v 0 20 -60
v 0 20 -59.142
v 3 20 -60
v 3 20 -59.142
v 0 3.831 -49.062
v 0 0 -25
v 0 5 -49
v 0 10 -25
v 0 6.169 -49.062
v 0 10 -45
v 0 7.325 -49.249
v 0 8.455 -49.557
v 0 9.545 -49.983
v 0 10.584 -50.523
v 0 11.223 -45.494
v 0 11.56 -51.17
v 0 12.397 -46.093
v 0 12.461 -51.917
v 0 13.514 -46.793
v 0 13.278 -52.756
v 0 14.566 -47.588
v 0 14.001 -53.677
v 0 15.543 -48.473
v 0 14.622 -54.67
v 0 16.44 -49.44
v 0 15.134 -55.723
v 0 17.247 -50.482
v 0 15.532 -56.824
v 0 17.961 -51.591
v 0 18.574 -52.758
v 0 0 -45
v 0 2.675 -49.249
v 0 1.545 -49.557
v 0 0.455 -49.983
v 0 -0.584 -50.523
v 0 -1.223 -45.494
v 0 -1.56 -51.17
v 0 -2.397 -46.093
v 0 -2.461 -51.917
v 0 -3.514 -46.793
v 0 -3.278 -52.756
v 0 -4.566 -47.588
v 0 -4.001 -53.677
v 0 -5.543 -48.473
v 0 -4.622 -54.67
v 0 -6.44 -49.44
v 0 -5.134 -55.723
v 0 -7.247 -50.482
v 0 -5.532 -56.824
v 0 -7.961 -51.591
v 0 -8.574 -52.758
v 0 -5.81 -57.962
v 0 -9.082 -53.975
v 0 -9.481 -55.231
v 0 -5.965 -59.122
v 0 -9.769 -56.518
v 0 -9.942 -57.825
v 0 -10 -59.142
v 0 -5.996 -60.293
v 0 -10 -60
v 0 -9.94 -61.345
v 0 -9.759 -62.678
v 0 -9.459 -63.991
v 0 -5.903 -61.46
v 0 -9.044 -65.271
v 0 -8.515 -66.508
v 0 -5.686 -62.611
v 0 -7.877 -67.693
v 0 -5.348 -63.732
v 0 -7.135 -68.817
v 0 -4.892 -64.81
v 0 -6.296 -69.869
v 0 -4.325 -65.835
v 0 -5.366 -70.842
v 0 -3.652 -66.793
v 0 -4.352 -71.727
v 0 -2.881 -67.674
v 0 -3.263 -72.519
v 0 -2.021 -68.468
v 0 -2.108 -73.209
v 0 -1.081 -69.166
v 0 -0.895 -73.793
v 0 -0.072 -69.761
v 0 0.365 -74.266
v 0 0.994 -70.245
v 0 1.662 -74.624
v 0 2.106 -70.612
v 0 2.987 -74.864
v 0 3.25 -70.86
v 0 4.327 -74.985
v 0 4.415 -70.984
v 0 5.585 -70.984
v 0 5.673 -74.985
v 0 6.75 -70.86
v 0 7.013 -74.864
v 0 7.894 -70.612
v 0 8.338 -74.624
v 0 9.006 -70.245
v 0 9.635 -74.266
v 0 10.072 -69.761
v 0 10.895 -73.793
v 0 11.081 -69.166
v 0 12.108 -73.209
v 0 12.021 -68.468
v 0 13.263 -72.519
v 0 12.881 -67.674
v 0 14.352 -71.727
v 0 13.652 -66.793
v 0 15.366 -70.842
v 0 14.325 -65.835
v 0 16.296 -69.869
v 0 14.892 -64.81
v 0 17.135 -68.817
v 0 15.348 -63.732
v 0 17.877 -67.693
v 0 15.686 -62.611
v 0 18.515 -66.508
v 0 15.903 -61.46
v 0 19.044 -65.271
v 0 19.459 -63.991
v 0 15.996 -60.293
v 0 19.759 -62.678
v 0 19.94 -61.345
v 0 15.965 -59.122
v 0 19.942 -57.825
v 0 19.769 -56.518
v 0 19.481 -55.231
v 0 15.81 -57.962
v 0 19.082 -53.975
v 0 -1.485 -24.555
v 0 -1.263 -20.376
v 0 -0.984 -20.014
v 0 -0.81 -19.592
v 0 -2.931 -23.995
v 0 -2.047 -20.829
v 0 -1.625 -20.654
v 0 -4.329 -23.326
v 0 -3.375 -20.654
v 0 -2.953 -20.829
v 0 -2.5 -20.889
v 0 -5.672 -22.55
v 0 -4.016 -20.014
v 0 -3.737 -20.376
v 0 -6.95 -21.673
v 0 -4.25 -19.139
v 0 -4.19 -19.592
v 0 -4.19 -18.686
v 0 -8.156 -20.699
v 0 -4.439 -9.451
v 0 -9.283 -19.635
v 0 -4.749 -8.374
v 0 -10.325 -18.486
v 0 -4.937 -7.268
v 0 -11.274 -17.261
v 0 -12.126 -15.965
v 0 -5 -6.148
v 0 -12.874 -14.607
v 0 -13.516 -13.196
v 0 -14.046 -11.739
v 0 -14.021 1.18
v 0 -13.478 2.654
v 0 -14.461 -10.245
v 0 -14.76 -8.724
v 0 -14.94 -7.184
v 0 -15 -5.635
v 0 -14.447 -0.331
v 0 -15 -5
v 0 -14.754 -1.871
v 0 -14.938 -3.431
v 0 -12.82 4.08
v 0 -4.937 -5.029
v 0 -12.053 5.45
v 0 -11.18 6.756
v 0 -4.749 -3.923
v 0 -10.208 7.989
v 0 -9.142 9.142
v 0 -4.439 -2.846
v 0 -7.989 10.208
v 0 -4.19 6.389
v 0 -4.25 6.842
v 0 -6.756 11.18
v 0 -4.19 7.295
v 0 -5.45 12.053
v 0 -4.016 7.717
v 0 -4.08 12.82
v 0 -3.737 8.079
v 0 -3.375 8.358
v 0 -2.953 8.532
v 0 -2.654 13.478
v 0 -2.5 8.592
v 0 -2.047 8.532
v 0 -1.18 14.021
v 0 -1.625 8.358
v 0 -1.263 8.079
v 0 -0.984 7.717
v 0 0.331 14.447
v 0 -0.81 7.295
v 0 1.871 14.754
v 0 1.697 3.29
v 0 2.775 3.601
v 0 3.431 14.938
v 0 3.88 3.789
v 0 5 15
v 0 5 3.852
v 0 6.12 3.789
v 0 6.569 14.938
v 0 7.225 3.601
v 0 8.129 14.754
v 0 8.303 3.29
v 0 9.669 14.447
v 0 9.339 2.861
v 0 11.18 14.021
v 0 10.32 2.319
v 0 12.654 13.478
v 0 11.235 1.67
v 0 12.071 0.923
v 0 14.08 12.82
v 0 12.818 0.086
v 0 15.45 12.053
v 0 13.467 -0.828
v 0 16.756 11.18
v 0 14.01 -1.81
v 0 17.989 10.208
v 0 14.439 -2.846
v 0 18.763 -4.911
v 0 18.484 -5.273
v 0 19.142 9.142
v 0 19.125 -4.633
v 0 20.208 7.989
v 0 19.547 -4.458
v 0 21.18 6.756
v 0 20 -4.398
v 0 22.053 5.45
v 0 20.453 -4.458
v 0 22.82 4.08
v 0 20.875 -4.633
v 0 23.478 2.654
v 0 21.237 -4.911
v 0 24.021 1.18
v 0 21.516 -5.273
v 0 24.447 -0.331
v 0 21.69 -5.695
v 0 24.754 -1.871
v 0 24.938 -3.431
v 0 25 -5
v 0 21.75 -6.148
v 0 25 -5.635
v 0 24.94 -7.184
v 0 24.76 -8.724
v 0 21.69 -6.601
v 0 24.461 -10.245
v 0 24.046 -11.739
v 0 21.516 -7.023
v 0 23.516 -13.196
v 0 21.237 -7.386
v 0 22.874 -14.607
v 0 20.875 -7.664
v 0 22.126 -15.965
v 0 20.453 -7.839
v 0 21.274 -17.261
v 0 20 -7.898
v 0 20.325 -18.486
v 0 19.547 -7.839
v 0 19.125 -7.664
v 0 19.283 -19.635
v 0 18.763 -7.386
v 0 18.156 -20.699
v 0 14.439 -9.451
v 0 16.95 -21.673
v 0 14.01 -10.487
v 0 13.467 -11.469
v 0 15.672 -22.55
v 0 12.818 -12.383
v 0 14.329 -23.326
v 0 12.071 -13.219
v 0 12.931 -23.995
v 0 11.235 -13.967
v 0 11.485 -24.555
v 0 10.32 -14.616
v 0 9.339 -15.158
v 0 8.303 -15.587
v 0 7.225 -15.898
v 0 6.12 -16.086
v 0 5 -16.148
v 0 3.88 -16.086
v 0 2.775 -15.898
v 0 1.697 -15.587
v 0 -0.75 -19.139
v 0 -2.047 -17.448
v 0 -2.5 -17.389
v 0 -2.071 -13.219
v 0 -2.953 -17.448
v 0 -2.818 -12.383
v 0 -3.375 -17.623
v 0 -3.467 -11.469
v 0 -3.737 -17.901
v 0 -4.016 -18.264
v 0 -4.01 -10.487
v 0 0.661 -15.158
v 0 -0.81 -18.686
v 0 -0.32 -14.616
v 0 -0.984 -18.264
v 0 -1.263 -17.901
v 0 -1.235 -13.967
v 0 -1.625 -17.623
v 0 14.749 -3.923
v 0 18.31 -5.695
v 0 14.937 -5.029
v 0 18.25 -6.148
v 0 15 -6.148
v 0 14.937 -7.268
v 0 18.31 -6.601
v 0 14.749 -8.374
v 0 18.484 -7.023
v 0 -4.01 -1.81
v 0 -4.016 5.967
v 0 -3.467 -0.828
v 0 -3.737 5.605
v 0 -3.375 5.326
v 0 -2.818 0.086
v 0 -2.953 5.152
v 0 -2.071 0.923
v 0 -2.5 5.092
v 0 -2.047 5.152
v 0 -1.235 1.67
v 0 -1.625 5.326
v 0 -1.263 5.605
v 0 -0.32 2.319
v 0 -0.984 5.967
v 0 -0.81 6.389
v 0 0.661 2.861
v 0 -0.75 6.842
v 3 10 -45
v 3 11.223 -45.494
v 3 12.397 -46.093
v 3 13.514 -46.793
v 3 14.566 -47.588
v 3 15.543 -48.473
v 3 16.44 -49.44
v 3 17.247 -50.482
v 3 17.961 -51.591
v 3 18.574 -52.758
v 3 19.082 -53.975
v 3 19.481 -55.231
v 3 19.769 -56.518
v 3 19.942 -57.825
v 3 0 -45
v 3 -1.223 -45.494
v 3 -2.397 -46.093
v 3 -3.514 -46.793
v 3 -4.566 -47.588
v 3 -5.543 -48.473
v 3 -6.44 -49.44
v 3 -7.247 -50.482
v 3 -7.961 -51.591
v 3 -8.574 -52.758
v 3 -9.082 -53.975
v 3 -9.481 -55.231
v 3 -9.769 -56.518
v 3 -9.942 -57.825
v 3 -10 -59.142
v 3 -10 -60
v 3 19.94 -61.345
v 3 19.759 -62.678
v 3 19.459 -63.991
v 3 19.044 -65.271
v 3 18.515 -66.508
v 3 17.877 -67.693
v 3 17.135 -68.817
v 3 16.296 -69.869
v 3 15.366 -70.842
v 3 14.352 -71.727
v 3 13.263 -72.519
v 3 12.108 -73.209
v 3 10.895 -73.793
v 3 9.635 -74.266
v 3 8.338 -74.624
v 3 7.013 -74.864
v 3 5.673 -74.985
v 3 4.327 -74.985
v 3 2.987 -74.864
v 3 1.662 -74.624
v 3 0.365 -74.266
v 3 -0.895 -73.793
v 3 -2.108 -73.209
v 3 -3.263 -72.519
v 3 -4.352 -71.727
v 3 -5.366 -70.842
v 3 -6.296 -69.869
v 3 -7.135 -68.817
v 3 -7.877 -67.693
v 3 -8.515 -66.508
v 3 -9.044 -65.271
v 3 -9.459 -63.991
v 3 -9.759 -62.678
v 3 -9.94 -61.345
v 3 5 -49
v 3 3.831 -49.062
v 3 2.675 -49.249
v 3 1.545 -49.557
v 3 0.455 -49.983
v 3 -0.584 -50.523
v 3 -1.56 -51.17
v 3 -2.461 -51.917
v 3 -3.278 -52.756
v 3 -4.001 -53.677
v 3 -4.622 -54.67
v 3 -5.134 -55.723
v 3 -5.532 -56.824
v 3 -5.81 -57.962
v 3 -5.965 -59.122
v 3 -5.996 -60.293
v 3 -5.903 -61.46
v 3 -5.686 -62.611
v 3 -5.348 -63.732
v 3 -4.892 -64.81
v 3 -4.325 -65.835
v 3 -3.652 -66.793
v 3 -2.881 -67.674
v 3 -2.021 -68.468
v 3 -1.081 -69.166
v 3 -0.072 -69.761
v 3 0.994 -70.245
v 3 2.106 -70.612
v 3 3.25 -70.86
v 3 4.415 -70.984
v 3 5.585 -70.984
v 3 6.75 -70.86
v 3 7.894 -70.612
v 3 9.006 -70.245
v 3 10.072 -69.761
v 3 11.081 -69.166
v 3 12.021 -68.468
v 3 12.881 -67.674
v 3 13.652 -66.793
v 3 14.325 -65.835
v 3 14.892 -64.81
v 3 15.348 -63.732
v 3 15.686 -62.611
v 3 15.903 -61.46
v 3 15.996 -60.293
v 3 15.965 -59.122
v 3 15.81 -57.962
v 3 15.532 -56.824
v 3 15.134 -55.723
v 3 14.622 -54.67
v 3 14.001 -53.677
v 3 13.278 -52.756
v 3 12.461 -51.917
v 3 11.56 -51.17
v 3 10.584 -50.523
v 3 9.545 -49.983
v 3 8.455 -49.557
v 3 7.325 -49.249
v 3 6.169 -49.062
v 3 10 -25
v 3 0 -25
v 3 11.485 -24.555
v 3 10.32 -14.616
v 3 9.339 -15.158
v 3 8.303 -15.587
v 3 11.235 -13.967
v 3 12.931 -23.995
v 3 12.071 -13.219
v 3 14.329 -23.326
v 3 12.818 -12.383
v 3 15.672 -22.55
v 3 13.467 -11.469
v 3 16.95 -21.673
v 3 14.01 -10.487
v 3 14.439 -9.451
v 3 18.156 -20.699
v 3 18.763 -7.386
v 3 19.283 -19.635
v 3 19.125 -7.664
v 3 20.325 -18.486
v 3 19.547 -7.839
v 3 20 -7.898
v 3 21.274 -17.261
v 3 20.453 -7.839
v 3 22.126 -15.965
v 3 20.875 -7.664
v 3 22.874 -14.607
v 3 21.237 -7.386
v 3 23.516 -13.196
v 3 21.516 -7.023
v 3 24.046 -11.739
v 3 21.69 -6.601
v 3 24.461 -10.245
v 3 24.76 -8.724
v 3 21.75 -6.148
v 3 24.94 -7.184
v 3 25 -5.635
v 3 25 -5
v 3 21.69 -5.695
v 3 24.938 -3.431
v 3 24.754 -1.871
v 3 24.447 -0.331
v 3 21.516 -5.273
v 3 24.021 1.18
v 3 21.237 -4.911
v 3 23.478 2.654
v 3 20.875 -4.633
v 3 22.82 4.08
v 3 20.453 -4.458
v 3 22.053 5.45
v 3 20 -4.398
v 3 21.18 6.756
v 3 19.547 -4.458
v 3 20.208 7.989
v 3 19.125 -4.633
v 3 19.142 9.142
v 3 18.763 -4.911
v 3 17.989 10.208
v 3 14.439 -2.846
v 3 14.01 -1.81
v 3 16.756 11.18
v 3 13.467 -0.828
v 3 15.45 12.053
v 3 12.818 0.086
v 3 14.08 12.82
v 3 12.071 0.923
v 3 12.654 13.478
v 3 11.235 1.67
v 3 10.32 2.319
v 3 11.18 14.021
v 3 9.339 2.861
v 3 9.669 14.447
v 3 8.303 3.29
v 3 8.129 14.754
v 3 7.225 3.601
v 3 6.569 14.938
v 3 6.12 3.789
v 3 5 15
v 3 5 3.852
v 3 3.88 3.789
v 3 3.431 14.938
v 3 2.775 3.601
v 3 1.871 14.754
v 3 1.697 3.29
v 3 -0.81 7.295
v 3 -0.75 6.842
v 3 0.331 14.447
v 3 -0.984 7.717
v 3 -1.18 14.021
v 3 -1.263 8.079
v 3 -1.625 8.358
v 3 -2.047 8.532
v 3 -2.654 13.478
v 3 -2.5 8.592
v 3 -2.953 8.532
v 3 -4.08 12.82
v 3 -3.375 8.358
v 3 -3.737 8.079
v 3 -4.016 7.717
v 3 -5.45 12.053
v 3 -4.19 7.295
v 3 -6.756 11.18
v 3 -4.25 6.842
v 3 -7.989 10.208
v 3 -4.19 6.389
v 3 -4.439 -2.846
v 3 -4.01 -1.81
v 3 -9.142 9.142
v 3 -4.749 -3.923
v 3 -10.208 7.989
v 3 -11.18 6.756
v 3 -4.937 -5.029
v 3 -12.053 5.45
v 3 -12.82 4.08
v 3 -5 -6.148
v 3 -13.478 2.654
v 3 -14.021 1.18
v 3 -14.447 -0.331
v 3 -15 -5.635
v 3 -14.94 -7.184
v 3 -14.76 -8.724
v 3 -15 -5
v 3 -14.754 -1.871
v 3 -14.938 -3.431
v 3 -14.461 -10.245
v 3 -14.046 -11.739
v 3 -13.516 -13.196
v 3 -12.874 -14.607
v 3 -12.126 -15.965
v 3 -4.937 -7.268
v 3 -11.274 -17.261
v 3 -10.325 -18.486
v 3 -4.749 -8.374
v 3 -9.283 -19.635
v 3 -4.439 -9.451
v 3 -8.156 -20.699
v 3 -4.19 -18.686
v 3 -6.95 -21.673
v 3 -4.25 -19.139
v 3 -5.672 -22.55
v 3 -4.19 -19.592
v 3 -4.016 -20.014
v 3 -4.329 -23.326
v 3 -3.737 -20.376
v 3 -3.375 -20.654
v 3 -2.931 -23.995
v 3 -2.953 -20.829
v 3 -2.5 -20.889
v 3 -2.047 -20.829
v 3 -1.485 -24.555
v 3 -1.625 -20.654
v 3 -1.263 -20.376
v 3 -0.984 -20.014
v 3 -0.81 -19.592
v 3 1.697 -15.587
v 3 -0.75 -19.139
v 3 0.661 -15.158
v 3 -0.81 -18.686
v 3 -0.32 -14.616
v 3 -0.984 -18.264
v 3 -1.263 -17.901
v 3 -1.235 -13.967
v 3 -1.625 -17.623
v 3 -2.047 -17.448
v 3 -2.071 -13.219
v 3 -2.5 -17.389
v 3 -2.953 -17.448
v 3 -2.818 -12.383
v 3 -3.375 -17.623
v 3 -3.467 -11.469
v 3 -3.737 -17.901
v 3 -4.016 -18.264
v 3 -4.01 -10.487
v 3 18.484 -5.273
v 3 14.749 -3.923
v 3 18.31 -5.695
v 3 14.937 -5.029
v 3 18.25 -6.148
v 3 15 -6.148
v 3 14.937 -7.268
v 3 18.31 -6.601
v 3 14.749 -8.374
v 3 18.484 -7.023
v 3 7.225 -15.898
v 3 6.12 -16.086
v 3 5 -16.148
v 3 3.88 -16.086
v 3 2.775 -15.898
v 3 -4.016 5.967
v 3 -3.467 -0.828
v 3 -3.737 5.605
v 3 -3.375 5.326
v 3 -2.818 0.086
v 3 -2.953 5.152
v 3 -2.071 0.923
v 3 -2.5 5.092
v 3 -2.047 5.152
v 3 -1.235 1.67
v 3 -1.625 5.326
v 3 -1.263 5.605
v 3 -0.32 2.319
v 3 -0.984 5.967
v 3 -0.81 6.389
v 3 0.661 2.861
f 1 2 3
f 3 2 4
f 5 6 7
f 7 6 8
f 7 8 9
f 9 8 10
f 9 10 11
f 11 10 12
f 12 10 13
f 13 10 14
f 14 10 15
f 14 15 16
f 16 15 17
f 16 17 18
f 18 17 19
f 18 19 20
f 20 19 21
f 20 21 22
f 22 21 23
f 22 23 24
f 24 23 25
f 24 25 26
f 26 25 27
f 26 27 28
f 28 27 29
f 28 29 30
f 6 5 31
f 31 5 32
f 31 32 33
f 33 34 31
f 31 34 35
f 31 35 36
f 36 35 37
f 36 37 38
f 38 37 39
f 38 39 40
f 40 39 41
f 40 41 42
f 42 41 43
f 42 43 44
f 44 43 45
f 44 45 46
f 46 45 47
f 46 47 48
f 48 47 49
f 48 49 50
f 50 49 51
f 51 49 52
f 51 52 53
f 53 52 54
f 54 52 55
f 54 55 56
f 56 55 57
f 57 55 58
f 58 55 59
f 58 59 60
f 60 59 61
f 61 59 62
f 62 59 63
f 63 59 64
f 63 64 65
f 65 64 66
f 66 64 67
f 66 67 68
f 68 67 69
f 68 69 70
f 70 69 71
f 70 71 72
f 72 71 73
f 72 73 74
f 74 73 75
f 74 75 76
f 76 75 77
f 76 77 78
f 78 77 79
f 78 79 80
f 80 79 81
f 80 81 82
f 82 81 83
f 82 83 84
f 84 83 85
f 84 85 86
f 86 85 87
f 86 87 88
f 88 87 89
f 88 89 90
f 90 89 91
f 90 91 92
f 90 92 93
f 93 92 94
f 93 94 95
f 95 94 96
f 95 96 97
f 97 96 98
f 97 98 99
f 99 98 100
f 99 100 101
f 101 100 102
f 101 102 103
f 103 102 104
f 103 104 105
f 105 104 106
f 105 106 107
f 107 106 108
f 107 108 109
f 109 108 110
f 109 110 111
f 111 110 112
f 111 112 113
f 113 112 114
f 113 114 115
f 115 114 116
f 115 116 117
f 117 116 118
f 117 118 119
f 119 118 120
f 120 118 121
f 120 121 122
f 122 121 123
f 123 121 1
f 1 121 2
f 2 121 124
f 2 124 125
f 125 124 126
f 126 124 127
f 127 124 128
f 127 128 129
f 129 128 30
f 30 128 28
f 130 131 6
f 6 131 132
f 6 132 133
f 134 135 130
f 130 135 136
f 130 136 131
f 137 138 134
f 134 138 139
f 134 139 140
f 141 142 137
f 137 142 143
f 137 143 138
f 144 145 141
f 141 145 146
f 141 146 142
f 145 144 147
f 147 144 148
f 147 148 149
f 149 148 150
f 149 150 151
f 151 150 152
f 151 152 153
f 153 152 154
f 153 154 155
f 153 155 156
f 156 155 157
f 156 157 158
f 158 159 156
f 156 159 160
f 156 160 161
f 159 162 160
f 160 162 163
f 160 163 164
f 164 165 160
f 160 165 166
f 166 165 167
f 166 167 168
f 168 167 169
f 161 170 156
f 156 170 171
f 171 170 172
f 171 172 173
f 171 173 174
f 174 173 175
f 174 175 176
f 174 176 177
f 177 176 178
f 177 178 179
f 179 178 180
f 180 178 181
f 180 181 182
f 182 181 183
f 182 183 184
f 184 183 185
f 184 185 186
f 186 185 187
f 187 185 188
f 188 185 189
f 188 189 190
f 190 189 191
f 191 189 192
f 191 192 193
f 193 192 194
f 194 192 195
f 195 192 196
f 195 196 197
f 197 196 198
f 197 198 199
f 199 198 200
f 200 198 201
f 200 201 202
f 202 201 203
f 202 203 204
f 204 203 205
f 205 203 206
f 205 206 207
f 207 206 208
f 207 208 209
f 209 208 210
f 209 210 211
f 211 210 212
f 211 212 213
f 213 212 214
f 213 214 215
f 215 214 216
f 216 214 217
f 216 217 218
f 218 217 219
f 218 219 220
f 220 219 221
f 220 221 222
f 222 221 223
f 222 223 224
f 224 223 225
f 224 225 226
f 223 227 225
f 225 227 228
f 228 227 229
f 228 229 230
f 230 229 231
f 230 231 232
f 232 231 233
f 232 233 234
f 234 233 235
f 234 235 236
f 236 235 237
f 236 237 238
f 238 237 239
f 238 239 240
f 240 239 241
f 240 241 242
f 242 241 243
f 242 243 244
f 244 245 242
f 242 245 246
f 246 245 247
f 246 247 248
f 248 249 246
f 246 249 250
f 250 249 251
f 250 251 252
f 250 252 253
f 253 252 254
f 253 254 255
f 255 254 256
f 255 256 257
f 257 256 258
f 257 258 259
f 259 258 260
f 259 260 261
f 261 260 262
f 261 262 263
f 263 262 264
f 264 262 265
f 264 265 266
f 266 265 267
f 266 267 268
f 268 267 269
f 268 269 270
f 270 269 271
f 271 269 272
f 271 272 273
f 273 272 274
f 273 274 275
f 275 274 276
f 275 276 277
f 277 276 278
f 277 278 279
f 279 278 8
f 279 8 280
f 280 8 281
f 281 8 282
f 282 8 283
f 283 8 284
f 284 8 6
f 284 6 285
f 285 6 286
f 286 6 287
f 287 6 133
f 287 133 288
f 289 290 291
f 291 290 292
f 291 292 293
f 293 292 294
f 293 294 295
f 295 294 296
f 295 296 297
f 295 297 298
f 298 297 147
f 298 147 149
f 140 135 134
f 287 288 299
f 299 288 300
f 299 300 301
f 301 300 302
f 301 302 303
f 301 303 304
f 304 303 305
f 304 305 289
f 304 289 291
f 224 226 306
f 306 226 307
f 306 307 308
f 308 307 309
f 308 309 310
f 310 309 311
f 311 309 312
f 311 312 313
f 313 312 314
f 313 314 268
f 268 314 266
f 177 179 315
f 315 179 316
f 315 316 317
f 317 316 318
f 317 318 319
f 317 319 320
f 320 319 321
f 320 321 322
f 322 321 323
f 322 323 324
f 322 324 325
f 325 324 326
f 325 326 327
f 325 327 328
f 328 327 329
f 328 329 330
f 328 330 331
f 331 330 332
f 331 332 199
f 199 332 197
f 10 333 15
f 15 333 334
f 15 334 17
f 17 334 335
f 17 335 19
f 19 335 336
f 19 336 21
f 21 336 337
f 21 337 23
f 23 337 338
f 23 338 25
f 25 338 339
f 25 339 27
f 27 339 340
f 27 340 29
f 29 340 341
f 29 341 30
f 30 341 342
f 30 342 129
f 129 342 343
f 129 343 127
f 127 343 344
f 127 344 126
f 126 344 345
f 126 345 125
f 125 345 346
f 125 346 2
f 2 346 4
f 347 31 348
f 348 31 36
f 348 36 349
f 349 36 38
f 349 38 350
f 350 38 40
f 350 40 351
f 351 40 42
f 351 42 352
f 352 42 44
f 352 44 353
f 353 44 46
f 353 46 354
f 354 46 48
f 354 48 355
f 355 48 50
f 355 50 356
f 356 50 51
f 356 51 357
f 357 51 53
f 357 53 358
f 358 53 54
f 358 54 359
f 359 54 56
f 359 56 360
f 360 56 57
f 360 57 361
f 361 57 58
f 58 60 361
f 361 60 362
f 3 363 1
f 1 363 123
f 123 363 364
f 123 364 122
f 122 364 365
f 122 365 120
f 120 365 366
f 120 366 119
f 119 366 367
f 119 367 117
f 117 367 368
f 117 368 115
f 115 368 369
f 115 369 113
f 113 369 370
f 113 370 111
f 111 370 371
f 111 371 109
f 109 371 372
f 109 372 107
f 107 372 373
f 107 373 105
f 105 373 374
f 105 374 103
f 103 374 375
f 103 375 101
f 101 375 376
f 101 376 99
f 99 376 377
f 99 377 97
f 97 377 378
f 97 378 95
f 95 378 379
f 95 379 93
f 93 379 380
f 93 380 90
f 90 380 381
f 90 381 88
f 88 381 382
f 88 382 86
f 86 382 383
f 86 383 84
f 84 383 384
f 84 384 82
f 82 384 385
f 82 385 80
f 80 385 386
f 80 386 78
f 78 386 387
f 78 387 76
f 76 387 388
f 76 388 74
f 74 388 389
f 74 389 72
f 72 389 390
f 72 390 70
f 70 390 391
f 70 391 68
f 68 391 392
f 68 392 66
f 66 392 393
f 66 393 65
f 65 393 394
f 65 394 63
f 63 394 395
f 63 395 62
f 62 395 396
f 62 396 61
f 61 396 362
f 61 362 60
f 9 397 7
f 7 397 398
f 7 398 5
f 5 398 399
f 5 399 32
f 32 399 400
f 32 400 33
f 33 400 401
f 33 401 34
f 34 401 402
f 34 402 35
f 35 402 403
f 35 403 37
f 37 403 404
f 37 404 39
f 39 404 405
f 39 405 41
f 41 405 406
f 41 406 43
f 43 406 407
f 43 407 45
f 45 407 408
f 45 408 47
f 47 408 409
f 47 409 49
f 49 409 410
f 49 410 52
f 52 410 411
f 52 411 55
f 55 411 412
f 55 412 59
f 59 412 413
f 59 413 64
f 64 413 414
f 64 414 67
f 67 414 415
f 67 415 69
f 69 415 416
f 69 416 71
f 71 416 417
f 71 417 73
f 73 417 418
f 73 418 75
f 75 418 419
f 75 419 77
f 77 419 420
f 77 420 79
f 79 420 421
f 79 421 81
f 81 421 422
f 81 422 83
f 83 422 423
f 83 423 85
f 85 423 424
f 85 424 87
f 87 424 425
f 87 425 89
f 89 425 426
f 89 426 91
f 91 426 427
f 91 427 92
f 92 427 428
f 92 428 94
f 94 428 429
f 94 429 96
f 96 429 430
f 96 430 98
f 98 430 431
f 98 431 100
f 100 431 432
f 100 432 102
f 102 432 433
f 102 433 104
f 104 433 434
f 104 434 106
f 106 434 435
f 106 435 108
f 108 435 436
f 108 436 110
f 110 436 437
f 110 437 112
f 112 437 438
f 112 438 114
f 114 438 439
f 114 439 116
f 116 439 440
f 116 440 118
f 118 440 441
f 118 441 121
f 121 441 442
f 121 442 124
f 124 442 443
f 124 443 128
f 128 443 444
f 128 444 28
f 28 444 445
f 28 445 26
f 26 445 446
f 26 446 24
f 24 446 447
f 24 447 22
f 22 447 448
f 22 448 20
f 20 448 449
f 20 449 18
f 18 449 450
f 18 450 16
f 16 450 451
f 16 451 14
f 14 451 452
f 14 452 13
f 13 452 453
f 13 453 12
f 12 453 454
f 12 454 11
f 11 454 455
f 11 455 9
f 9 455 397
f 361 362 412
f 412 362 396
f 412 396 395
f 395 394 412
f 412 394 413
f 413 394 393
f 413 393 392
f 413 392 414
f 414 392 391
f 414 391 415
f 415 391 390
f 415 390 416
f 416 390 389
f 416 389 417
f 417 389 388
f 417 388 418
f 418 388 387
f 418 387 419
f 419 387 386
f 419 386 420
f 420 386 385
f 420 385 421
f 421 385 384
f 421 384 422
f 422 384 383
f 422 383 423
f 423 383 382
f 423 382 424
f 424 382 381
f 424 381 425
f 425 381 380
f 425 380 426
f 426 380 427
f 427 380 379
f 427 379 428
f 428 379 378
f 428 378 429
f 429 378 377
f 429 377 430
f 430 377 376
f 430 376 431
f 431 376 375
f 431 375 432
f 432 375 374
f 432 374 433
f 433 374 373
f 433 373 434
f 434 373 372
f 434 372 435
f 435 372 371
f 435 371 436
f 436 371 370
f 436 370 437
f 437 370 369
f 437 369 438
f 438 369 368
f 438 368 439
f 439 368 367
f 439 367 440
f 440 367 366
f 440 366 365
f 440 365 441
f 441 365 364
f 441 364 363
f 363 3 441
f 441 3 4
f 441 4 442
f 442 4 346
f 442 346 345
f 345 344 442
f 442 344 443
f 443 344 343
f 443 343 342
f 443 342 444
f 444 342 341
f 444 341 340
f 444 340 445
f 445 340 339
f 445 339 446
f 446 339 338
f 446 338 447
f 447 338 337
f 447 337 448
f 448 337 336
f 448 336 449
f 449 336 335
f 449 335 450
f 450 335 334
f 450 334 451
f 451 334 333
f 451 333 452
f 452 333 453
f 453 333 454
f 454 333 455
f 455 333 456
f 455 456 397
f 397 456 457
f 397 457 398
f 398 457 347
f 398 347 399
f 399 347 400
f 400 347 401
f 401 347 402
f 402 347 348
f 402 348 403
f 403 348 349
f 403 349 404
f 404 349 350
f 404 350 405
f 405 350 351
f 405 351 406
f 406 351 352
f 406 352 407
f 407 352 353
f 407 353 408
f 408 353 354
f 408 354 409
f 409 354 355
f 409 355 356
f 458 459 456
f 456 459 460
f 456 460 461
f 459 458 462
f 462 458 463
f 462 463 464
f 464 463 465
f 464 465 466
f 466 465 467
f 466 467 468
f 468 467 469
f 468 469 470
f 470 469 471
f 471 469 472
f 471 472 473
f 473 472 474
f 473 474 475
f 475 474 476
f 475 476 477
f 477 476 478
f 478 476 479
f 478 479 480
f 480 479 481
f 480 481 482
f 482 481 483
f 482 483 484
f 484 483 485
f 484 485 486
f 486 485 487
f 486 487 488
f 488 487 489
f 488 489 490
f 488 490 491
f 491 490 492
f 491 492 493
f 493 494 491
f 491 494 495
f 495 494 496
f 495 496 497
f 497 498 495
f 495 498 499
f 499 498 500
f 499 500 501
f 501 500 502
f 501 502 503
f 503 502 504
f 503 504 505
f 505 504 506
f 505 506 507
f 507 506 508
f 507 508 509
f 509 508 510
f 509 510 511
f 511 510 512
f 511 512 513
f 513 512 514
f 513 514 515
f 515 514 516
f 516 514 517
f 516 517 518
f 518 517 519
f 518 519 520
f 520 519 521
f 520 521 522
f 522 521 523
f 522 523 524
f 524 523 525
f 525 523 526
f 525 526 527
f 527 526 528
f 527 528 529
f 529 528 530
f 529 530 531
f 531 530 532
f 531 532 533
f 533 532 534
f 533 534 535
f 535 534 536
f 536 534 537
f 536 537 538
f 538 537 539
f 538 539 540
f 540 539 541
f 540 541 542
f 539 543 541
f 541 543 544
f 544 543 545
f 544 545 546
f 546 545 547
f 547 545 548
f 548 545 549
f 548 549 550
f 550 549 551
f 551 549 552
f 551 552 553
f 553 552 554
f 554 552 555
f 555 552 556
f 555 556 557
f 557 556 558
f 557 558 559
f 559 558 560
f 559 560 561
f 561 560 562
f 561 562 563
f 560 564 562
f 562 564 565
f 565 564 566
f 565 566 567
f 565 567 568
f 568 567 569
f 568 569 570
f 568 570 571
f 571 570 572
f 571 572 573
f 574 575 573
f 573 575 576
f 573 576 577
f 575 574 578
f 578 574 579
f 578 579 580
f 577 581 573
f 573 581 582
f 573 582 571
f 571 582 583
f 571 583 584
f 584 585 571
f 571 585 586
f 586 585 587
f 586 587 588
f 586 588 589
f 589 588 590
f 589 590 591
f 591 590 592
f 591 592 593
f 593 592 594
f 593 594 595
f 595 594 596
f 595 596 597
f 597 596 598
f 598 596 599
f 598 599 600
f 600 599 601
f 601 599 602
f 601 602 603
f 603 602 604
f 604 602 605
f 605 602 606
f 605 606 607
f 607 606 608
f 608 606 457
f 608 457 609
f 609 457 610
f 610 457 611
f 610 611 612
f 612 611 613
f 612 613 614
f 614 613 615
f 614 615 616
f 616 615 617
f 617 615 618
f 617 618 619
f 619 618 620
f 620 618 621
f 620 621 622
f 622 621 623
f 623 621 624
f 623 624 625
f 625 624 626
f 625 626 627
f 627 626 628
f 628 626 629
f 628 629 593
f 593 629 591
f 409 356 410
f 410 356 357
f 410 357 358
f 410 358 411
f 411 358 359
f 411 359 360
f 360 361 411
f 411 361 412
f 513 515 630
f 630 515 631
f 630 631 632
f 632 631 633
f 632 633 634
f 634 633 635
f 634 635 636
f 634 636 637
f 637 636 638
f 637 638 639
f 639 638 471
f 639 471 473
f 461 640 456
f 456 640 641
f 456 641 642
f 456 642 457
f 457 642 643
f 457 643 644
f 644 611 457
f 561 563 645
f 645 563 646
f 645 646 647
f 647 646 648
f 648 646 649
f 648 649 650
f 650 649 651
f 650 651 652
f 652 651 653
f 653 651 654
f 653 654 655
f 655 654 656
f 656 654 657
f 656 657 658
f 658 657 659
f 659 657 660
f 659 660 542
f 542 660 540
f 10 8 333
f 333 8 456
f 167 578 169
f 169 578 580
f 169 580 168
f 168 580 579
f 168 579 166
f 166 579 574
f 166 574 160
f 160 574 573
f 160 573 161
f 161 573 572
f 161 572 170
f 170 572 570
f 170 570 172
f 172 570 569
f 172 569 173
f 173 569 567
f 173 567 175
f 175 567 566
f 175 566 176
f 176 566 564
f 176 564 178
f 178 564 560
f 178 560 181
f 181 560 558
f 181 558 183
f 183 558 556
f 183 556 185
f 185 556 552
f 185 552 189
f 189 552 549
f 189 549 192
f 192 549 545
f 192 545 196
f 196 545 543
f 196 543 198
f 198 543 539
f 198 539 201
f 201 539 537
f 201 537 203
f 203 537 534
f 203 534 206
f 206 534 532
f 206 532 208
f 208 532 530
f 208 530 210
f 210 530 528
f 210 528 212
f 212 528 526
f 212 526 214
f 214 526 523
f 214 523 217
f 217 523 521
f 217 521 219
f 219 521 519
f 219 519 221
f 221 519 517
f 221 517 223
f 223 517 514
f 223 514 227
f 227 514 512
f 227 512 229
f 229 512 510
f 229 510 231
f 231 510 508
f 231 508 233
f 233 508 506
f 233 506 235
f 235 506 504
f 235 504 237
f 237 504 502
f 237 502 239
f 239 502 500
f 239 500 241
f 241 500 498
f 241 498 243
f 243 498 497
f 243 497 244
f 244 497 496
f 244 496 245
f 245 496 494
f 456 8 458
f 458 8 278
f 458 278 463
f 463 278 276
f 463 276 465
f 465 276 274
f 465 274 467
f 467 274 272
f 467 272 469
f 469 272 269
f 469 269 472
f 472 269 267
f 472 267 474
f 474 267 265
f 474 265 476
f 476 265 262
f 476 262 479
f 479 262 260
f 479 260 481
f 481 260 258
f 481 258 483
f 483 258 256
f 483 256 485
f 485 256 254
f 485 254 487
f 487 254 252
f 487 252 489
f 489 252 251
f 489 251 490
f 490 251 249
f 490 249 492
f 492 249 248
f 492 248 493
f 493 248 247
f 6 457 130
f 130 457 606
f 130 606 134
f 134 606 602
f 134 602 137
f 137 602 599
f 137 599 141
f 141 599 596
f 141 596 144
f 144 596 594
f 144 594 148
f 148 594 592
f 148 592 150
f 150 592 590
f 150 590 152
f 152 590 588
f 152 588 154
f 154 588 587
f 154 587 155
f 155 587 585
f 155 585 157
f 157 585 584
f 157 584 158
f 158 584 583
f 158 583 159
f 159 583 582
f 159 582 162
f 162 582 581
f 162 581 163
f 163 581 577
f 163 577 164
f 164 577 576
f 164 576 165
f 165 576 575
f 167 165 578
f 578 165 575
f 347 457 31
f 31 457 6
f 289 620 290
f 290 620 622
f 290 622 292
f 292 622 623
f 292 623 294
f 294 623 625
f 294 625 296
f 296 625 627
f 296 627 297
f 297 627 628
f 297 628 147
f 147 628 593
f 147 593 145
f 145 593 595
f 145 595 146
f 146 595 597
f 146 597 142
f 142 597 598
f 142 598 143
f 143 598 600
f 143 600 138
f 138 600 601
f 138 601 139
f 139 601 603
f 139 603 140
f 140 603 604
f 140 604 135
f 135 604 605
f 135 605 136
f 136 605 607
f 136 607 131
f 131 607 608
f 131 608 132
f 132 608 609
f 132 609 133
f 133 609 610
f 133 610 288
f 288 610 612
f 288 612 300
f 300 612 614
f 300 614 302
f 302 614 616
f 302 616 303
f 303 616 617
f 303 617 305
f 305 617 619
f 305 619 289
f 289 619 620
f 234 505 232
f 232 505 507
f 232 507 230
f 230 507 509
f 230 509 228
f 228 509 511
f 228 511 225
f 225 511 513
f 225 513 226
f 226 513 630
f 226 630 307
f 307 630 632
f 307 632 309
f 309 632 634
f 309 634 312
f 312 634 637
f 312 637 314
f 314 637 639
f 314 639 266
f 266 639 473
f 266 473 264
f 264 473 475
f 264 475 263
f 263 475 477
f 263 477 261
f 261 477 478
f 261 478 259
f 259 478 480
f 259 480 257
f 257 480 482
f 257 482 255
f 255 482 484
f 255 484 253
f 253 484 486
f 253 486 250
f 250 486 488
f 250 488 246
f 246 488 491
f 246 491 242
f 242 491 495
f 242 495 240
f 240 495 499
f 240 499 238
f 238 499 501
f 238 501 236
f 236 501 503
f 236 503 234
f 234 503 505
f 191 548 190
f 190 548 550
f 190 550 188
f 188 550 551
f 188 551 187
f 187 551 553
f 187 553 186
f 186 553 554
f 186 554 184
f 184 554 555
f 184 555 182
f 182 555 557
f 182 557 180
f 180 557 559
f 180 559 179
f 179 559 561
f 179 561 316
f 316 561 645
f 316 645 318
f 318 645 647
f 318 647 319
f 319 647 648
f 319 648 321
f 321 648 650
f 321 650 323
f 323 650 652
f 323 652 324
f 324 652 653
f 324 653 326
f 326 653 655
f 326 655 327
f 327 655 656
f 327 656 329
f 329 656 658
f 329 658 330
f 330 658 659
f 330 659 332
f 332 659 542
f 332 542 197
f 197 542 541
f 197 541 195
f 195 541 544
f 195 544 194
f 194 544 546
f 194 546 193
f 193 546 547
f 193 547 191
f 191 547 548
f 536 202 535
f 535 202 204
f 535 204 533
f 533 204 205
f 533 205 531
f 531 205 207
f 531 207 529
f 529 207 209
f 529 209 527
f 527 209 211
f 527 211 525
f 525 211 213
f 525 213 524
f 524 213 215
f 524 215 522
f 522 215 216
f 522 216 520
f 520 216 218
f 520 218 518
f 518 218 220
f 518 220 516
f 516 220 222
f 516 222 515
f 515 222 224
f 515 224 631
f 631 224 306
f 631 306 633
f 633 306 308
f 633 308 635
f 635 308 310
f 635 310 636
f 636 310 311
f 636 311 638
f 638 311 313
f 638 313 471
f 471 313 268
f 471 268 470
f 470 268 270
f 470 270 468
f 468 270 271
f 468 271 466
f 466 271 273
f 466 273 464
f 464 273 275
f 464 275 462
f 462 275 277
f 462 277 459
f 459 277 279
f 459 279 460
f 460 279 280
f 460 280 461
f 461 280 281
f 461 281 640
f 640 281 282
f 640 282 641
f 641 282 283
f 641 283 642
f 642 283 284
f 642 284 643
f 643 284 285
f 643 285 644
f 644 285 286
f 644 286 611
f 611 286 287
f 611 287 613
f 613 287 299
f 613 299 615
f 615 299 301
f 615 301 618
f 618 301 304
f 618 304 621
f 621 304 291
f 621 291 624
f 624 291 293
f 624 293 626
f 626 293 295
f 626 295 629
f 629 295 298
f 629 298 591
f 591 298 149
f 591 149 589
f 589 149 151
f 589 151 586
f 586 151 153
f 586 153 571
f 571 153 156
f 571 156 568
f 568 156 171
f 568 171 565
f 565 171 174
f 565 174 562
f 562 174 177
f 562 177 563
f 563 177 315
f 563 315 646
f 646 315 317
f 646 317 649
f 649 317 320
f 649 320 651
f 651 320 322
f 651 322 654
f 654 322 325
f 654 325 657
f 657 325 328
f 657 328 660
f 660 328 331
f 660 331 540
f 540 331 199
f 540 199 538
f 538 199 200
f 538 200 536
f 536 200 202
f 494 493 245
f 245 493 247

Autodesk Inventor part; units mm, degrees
ref_plane "YZ Plane" through (0, 0, 0) normal (1, 0, 0) x (0, 1, 0)
ref_plane "XZ Plane" through (0, 0, 0) normal (0, 1, 0) x (-1, 0, 0)
ref_plane "XY Plane" through (0, 0, 0) normal (0, 0, 1) x (1, 0, 0)
sketch "Esquisse1" plane through (0, 0, 0) normal (1, 0, 0) x (0, 1, 0)
  line L0 (0, 0) -> (10, 0)
  line L1 (10, 0) -> (10, -65)
  line L2 (10, -65) -> (0, -65)
  line L3 (0, -65) -> (0, 0)
  point P0 (5, -5)
  point P1 (5, -54.2442)
  dimension "d0" = 65
  dimension "d1" = 10
  dimension "d2" = 5
  dimension "d3" = 5
  dimension "d4" = 49.2442
  dimension "d5" = 5
extrude "Extrusion1" add sketch "Esquisse1" along normal blind 3
sketch "Esquisse2" plane through (0, 0, 0) normal (-1, 0, 0) x (0, 0, 1)
  line L0 (-25, 25) -> (15, 25)
  line L1 (15, 25) -> (15, -15)
  line L2 (15, -15) -> (-25, -15)
  line L3 (-25, -15) -> (-25, 25)
  line L4 (-65, 0) -> (0, 0) projected
  line L5 (0, 0) -> (0, 10) projected
  line L6 (-50, -10) -> (-80, -10)
  line L7 (-80, -10) -> (-80, 20)
  line L8 (-80, 20) -> (-50, 20)
  line L9 (-50, 20) -> (-50, -10)
  line L10 (-65, 10) -> (-65, 0) projected
  dimension "d8" = 40
  dimension "d9" = 25
  dimension "d10" = 40
  dimension "d11" = 25
  dimension "d36" = 30
  dimension "d37" = 30
  dimension "d38" = 20
  dimension "d39" = 15
extrude "Extrusion2" add sketch "Esquisse2" against normal blind 3 contours L0 L1 L2 L3
sketch "Esquisse3" plane through (0, 0, 0) normal (-1, 0, 0) x (0, 0, 1)
  line L0 (-65, 10) -> (-25, 10) projected
  line L1 (-65, 10) -> (-65, 0) projected
  line L2 (-65, 0) -> (-25, 0) projected
  circle A0 centre (-60, 5) radius 4
  circle A1 centre (-6.1484, 5) radius 10
  point P0 (0, 0)
  dimension "d14" = 5
  dimension "d15" = 5
  dimension "d16" = 53.8516
  dimension "d17" = 5
  dimension "d18" = 8
  dimension "d19" = 20
extrude "Extrusion3" cut sketch "Esquisse3" against normal blind 3
sketch "Esquisse4" plane through (0, 0, 0) normal (-1, 0, 0) x (0, 0, 1)
  circle A0 centre (-6.1484, 5) radius 10 projected
  circle A1 centre (-6.1484, 5) radius 15
  point P0 (0, 0)
  point P1 (-6.1484, 20)
  point P2 (-19.1388, -2.5)
  point P3 (6.842, -2.5)
  dimension "d22" = 30
  dimension "d25" = 360
hole "Perçage1" at (0, 20, -6.1484) at (0, -2.5, -19.1388) at (0, -2.5, 6.842) direction (1, 0, 0) diameter 3.5 depth 3 tip angle 118
fillet "Congé1" radius 3 2 edges at (1.5, 10, -65) (1.5, 0, -65)
fillet "Congé2" radius 20 4 edges at (1.5, -15, -25) (1.5, 25, -25) (1.5, -15, 15) (1.5, 25, 15)
sketch "Esquisse5" plane through (0, 0, 0) normal (-1, 0, 0) x (0, 0, 1)
  line L0 (-75, 20) -> (-45, 20)
  line L1 (-45, 20) -> (-45, -10)
  line L2 (-45, -10) -> (-75, -10)
  line L3 (-75, -10) -> (-75, 20)
  line L4 (-62, 0) -> (-25, 0) projected
  line L5 (-65, 7) -> (-65, 3) projected
  point P0 (0, 0)
  dimension "d40" = 30
  dimension "d41" = 30
  dimension "d42" = 20
  dimension "d43" = 10
extrude "Extrusion4" add sketch "Esquisse5" against normal blind 3
sketch "Esquisse6" plane through (0, 0, 0) normal (-1, 0, 0) x (0, 0, 1)
  line L0 (-75, 20) -> (-45, 20) projected
  circle A0 centre (-6.1484, 5) radius 10 projected
  point P0 (0, 0)
  point P1 (-60, 5)
  dimension "d46" = 15
  dimension "d47" = 53.8516
hole "Perçage2" at (0, 5, -60) direction (1, 0, 0) diameter 22 depth 3 tip angle 118
fillet "Congé3" radius 15 4 edges at (1.5, -10, -75) (1.5, -10, -45) (1.5, 20, -45) (1.5, 20, -75)
properties part number "barrecodeuse"
